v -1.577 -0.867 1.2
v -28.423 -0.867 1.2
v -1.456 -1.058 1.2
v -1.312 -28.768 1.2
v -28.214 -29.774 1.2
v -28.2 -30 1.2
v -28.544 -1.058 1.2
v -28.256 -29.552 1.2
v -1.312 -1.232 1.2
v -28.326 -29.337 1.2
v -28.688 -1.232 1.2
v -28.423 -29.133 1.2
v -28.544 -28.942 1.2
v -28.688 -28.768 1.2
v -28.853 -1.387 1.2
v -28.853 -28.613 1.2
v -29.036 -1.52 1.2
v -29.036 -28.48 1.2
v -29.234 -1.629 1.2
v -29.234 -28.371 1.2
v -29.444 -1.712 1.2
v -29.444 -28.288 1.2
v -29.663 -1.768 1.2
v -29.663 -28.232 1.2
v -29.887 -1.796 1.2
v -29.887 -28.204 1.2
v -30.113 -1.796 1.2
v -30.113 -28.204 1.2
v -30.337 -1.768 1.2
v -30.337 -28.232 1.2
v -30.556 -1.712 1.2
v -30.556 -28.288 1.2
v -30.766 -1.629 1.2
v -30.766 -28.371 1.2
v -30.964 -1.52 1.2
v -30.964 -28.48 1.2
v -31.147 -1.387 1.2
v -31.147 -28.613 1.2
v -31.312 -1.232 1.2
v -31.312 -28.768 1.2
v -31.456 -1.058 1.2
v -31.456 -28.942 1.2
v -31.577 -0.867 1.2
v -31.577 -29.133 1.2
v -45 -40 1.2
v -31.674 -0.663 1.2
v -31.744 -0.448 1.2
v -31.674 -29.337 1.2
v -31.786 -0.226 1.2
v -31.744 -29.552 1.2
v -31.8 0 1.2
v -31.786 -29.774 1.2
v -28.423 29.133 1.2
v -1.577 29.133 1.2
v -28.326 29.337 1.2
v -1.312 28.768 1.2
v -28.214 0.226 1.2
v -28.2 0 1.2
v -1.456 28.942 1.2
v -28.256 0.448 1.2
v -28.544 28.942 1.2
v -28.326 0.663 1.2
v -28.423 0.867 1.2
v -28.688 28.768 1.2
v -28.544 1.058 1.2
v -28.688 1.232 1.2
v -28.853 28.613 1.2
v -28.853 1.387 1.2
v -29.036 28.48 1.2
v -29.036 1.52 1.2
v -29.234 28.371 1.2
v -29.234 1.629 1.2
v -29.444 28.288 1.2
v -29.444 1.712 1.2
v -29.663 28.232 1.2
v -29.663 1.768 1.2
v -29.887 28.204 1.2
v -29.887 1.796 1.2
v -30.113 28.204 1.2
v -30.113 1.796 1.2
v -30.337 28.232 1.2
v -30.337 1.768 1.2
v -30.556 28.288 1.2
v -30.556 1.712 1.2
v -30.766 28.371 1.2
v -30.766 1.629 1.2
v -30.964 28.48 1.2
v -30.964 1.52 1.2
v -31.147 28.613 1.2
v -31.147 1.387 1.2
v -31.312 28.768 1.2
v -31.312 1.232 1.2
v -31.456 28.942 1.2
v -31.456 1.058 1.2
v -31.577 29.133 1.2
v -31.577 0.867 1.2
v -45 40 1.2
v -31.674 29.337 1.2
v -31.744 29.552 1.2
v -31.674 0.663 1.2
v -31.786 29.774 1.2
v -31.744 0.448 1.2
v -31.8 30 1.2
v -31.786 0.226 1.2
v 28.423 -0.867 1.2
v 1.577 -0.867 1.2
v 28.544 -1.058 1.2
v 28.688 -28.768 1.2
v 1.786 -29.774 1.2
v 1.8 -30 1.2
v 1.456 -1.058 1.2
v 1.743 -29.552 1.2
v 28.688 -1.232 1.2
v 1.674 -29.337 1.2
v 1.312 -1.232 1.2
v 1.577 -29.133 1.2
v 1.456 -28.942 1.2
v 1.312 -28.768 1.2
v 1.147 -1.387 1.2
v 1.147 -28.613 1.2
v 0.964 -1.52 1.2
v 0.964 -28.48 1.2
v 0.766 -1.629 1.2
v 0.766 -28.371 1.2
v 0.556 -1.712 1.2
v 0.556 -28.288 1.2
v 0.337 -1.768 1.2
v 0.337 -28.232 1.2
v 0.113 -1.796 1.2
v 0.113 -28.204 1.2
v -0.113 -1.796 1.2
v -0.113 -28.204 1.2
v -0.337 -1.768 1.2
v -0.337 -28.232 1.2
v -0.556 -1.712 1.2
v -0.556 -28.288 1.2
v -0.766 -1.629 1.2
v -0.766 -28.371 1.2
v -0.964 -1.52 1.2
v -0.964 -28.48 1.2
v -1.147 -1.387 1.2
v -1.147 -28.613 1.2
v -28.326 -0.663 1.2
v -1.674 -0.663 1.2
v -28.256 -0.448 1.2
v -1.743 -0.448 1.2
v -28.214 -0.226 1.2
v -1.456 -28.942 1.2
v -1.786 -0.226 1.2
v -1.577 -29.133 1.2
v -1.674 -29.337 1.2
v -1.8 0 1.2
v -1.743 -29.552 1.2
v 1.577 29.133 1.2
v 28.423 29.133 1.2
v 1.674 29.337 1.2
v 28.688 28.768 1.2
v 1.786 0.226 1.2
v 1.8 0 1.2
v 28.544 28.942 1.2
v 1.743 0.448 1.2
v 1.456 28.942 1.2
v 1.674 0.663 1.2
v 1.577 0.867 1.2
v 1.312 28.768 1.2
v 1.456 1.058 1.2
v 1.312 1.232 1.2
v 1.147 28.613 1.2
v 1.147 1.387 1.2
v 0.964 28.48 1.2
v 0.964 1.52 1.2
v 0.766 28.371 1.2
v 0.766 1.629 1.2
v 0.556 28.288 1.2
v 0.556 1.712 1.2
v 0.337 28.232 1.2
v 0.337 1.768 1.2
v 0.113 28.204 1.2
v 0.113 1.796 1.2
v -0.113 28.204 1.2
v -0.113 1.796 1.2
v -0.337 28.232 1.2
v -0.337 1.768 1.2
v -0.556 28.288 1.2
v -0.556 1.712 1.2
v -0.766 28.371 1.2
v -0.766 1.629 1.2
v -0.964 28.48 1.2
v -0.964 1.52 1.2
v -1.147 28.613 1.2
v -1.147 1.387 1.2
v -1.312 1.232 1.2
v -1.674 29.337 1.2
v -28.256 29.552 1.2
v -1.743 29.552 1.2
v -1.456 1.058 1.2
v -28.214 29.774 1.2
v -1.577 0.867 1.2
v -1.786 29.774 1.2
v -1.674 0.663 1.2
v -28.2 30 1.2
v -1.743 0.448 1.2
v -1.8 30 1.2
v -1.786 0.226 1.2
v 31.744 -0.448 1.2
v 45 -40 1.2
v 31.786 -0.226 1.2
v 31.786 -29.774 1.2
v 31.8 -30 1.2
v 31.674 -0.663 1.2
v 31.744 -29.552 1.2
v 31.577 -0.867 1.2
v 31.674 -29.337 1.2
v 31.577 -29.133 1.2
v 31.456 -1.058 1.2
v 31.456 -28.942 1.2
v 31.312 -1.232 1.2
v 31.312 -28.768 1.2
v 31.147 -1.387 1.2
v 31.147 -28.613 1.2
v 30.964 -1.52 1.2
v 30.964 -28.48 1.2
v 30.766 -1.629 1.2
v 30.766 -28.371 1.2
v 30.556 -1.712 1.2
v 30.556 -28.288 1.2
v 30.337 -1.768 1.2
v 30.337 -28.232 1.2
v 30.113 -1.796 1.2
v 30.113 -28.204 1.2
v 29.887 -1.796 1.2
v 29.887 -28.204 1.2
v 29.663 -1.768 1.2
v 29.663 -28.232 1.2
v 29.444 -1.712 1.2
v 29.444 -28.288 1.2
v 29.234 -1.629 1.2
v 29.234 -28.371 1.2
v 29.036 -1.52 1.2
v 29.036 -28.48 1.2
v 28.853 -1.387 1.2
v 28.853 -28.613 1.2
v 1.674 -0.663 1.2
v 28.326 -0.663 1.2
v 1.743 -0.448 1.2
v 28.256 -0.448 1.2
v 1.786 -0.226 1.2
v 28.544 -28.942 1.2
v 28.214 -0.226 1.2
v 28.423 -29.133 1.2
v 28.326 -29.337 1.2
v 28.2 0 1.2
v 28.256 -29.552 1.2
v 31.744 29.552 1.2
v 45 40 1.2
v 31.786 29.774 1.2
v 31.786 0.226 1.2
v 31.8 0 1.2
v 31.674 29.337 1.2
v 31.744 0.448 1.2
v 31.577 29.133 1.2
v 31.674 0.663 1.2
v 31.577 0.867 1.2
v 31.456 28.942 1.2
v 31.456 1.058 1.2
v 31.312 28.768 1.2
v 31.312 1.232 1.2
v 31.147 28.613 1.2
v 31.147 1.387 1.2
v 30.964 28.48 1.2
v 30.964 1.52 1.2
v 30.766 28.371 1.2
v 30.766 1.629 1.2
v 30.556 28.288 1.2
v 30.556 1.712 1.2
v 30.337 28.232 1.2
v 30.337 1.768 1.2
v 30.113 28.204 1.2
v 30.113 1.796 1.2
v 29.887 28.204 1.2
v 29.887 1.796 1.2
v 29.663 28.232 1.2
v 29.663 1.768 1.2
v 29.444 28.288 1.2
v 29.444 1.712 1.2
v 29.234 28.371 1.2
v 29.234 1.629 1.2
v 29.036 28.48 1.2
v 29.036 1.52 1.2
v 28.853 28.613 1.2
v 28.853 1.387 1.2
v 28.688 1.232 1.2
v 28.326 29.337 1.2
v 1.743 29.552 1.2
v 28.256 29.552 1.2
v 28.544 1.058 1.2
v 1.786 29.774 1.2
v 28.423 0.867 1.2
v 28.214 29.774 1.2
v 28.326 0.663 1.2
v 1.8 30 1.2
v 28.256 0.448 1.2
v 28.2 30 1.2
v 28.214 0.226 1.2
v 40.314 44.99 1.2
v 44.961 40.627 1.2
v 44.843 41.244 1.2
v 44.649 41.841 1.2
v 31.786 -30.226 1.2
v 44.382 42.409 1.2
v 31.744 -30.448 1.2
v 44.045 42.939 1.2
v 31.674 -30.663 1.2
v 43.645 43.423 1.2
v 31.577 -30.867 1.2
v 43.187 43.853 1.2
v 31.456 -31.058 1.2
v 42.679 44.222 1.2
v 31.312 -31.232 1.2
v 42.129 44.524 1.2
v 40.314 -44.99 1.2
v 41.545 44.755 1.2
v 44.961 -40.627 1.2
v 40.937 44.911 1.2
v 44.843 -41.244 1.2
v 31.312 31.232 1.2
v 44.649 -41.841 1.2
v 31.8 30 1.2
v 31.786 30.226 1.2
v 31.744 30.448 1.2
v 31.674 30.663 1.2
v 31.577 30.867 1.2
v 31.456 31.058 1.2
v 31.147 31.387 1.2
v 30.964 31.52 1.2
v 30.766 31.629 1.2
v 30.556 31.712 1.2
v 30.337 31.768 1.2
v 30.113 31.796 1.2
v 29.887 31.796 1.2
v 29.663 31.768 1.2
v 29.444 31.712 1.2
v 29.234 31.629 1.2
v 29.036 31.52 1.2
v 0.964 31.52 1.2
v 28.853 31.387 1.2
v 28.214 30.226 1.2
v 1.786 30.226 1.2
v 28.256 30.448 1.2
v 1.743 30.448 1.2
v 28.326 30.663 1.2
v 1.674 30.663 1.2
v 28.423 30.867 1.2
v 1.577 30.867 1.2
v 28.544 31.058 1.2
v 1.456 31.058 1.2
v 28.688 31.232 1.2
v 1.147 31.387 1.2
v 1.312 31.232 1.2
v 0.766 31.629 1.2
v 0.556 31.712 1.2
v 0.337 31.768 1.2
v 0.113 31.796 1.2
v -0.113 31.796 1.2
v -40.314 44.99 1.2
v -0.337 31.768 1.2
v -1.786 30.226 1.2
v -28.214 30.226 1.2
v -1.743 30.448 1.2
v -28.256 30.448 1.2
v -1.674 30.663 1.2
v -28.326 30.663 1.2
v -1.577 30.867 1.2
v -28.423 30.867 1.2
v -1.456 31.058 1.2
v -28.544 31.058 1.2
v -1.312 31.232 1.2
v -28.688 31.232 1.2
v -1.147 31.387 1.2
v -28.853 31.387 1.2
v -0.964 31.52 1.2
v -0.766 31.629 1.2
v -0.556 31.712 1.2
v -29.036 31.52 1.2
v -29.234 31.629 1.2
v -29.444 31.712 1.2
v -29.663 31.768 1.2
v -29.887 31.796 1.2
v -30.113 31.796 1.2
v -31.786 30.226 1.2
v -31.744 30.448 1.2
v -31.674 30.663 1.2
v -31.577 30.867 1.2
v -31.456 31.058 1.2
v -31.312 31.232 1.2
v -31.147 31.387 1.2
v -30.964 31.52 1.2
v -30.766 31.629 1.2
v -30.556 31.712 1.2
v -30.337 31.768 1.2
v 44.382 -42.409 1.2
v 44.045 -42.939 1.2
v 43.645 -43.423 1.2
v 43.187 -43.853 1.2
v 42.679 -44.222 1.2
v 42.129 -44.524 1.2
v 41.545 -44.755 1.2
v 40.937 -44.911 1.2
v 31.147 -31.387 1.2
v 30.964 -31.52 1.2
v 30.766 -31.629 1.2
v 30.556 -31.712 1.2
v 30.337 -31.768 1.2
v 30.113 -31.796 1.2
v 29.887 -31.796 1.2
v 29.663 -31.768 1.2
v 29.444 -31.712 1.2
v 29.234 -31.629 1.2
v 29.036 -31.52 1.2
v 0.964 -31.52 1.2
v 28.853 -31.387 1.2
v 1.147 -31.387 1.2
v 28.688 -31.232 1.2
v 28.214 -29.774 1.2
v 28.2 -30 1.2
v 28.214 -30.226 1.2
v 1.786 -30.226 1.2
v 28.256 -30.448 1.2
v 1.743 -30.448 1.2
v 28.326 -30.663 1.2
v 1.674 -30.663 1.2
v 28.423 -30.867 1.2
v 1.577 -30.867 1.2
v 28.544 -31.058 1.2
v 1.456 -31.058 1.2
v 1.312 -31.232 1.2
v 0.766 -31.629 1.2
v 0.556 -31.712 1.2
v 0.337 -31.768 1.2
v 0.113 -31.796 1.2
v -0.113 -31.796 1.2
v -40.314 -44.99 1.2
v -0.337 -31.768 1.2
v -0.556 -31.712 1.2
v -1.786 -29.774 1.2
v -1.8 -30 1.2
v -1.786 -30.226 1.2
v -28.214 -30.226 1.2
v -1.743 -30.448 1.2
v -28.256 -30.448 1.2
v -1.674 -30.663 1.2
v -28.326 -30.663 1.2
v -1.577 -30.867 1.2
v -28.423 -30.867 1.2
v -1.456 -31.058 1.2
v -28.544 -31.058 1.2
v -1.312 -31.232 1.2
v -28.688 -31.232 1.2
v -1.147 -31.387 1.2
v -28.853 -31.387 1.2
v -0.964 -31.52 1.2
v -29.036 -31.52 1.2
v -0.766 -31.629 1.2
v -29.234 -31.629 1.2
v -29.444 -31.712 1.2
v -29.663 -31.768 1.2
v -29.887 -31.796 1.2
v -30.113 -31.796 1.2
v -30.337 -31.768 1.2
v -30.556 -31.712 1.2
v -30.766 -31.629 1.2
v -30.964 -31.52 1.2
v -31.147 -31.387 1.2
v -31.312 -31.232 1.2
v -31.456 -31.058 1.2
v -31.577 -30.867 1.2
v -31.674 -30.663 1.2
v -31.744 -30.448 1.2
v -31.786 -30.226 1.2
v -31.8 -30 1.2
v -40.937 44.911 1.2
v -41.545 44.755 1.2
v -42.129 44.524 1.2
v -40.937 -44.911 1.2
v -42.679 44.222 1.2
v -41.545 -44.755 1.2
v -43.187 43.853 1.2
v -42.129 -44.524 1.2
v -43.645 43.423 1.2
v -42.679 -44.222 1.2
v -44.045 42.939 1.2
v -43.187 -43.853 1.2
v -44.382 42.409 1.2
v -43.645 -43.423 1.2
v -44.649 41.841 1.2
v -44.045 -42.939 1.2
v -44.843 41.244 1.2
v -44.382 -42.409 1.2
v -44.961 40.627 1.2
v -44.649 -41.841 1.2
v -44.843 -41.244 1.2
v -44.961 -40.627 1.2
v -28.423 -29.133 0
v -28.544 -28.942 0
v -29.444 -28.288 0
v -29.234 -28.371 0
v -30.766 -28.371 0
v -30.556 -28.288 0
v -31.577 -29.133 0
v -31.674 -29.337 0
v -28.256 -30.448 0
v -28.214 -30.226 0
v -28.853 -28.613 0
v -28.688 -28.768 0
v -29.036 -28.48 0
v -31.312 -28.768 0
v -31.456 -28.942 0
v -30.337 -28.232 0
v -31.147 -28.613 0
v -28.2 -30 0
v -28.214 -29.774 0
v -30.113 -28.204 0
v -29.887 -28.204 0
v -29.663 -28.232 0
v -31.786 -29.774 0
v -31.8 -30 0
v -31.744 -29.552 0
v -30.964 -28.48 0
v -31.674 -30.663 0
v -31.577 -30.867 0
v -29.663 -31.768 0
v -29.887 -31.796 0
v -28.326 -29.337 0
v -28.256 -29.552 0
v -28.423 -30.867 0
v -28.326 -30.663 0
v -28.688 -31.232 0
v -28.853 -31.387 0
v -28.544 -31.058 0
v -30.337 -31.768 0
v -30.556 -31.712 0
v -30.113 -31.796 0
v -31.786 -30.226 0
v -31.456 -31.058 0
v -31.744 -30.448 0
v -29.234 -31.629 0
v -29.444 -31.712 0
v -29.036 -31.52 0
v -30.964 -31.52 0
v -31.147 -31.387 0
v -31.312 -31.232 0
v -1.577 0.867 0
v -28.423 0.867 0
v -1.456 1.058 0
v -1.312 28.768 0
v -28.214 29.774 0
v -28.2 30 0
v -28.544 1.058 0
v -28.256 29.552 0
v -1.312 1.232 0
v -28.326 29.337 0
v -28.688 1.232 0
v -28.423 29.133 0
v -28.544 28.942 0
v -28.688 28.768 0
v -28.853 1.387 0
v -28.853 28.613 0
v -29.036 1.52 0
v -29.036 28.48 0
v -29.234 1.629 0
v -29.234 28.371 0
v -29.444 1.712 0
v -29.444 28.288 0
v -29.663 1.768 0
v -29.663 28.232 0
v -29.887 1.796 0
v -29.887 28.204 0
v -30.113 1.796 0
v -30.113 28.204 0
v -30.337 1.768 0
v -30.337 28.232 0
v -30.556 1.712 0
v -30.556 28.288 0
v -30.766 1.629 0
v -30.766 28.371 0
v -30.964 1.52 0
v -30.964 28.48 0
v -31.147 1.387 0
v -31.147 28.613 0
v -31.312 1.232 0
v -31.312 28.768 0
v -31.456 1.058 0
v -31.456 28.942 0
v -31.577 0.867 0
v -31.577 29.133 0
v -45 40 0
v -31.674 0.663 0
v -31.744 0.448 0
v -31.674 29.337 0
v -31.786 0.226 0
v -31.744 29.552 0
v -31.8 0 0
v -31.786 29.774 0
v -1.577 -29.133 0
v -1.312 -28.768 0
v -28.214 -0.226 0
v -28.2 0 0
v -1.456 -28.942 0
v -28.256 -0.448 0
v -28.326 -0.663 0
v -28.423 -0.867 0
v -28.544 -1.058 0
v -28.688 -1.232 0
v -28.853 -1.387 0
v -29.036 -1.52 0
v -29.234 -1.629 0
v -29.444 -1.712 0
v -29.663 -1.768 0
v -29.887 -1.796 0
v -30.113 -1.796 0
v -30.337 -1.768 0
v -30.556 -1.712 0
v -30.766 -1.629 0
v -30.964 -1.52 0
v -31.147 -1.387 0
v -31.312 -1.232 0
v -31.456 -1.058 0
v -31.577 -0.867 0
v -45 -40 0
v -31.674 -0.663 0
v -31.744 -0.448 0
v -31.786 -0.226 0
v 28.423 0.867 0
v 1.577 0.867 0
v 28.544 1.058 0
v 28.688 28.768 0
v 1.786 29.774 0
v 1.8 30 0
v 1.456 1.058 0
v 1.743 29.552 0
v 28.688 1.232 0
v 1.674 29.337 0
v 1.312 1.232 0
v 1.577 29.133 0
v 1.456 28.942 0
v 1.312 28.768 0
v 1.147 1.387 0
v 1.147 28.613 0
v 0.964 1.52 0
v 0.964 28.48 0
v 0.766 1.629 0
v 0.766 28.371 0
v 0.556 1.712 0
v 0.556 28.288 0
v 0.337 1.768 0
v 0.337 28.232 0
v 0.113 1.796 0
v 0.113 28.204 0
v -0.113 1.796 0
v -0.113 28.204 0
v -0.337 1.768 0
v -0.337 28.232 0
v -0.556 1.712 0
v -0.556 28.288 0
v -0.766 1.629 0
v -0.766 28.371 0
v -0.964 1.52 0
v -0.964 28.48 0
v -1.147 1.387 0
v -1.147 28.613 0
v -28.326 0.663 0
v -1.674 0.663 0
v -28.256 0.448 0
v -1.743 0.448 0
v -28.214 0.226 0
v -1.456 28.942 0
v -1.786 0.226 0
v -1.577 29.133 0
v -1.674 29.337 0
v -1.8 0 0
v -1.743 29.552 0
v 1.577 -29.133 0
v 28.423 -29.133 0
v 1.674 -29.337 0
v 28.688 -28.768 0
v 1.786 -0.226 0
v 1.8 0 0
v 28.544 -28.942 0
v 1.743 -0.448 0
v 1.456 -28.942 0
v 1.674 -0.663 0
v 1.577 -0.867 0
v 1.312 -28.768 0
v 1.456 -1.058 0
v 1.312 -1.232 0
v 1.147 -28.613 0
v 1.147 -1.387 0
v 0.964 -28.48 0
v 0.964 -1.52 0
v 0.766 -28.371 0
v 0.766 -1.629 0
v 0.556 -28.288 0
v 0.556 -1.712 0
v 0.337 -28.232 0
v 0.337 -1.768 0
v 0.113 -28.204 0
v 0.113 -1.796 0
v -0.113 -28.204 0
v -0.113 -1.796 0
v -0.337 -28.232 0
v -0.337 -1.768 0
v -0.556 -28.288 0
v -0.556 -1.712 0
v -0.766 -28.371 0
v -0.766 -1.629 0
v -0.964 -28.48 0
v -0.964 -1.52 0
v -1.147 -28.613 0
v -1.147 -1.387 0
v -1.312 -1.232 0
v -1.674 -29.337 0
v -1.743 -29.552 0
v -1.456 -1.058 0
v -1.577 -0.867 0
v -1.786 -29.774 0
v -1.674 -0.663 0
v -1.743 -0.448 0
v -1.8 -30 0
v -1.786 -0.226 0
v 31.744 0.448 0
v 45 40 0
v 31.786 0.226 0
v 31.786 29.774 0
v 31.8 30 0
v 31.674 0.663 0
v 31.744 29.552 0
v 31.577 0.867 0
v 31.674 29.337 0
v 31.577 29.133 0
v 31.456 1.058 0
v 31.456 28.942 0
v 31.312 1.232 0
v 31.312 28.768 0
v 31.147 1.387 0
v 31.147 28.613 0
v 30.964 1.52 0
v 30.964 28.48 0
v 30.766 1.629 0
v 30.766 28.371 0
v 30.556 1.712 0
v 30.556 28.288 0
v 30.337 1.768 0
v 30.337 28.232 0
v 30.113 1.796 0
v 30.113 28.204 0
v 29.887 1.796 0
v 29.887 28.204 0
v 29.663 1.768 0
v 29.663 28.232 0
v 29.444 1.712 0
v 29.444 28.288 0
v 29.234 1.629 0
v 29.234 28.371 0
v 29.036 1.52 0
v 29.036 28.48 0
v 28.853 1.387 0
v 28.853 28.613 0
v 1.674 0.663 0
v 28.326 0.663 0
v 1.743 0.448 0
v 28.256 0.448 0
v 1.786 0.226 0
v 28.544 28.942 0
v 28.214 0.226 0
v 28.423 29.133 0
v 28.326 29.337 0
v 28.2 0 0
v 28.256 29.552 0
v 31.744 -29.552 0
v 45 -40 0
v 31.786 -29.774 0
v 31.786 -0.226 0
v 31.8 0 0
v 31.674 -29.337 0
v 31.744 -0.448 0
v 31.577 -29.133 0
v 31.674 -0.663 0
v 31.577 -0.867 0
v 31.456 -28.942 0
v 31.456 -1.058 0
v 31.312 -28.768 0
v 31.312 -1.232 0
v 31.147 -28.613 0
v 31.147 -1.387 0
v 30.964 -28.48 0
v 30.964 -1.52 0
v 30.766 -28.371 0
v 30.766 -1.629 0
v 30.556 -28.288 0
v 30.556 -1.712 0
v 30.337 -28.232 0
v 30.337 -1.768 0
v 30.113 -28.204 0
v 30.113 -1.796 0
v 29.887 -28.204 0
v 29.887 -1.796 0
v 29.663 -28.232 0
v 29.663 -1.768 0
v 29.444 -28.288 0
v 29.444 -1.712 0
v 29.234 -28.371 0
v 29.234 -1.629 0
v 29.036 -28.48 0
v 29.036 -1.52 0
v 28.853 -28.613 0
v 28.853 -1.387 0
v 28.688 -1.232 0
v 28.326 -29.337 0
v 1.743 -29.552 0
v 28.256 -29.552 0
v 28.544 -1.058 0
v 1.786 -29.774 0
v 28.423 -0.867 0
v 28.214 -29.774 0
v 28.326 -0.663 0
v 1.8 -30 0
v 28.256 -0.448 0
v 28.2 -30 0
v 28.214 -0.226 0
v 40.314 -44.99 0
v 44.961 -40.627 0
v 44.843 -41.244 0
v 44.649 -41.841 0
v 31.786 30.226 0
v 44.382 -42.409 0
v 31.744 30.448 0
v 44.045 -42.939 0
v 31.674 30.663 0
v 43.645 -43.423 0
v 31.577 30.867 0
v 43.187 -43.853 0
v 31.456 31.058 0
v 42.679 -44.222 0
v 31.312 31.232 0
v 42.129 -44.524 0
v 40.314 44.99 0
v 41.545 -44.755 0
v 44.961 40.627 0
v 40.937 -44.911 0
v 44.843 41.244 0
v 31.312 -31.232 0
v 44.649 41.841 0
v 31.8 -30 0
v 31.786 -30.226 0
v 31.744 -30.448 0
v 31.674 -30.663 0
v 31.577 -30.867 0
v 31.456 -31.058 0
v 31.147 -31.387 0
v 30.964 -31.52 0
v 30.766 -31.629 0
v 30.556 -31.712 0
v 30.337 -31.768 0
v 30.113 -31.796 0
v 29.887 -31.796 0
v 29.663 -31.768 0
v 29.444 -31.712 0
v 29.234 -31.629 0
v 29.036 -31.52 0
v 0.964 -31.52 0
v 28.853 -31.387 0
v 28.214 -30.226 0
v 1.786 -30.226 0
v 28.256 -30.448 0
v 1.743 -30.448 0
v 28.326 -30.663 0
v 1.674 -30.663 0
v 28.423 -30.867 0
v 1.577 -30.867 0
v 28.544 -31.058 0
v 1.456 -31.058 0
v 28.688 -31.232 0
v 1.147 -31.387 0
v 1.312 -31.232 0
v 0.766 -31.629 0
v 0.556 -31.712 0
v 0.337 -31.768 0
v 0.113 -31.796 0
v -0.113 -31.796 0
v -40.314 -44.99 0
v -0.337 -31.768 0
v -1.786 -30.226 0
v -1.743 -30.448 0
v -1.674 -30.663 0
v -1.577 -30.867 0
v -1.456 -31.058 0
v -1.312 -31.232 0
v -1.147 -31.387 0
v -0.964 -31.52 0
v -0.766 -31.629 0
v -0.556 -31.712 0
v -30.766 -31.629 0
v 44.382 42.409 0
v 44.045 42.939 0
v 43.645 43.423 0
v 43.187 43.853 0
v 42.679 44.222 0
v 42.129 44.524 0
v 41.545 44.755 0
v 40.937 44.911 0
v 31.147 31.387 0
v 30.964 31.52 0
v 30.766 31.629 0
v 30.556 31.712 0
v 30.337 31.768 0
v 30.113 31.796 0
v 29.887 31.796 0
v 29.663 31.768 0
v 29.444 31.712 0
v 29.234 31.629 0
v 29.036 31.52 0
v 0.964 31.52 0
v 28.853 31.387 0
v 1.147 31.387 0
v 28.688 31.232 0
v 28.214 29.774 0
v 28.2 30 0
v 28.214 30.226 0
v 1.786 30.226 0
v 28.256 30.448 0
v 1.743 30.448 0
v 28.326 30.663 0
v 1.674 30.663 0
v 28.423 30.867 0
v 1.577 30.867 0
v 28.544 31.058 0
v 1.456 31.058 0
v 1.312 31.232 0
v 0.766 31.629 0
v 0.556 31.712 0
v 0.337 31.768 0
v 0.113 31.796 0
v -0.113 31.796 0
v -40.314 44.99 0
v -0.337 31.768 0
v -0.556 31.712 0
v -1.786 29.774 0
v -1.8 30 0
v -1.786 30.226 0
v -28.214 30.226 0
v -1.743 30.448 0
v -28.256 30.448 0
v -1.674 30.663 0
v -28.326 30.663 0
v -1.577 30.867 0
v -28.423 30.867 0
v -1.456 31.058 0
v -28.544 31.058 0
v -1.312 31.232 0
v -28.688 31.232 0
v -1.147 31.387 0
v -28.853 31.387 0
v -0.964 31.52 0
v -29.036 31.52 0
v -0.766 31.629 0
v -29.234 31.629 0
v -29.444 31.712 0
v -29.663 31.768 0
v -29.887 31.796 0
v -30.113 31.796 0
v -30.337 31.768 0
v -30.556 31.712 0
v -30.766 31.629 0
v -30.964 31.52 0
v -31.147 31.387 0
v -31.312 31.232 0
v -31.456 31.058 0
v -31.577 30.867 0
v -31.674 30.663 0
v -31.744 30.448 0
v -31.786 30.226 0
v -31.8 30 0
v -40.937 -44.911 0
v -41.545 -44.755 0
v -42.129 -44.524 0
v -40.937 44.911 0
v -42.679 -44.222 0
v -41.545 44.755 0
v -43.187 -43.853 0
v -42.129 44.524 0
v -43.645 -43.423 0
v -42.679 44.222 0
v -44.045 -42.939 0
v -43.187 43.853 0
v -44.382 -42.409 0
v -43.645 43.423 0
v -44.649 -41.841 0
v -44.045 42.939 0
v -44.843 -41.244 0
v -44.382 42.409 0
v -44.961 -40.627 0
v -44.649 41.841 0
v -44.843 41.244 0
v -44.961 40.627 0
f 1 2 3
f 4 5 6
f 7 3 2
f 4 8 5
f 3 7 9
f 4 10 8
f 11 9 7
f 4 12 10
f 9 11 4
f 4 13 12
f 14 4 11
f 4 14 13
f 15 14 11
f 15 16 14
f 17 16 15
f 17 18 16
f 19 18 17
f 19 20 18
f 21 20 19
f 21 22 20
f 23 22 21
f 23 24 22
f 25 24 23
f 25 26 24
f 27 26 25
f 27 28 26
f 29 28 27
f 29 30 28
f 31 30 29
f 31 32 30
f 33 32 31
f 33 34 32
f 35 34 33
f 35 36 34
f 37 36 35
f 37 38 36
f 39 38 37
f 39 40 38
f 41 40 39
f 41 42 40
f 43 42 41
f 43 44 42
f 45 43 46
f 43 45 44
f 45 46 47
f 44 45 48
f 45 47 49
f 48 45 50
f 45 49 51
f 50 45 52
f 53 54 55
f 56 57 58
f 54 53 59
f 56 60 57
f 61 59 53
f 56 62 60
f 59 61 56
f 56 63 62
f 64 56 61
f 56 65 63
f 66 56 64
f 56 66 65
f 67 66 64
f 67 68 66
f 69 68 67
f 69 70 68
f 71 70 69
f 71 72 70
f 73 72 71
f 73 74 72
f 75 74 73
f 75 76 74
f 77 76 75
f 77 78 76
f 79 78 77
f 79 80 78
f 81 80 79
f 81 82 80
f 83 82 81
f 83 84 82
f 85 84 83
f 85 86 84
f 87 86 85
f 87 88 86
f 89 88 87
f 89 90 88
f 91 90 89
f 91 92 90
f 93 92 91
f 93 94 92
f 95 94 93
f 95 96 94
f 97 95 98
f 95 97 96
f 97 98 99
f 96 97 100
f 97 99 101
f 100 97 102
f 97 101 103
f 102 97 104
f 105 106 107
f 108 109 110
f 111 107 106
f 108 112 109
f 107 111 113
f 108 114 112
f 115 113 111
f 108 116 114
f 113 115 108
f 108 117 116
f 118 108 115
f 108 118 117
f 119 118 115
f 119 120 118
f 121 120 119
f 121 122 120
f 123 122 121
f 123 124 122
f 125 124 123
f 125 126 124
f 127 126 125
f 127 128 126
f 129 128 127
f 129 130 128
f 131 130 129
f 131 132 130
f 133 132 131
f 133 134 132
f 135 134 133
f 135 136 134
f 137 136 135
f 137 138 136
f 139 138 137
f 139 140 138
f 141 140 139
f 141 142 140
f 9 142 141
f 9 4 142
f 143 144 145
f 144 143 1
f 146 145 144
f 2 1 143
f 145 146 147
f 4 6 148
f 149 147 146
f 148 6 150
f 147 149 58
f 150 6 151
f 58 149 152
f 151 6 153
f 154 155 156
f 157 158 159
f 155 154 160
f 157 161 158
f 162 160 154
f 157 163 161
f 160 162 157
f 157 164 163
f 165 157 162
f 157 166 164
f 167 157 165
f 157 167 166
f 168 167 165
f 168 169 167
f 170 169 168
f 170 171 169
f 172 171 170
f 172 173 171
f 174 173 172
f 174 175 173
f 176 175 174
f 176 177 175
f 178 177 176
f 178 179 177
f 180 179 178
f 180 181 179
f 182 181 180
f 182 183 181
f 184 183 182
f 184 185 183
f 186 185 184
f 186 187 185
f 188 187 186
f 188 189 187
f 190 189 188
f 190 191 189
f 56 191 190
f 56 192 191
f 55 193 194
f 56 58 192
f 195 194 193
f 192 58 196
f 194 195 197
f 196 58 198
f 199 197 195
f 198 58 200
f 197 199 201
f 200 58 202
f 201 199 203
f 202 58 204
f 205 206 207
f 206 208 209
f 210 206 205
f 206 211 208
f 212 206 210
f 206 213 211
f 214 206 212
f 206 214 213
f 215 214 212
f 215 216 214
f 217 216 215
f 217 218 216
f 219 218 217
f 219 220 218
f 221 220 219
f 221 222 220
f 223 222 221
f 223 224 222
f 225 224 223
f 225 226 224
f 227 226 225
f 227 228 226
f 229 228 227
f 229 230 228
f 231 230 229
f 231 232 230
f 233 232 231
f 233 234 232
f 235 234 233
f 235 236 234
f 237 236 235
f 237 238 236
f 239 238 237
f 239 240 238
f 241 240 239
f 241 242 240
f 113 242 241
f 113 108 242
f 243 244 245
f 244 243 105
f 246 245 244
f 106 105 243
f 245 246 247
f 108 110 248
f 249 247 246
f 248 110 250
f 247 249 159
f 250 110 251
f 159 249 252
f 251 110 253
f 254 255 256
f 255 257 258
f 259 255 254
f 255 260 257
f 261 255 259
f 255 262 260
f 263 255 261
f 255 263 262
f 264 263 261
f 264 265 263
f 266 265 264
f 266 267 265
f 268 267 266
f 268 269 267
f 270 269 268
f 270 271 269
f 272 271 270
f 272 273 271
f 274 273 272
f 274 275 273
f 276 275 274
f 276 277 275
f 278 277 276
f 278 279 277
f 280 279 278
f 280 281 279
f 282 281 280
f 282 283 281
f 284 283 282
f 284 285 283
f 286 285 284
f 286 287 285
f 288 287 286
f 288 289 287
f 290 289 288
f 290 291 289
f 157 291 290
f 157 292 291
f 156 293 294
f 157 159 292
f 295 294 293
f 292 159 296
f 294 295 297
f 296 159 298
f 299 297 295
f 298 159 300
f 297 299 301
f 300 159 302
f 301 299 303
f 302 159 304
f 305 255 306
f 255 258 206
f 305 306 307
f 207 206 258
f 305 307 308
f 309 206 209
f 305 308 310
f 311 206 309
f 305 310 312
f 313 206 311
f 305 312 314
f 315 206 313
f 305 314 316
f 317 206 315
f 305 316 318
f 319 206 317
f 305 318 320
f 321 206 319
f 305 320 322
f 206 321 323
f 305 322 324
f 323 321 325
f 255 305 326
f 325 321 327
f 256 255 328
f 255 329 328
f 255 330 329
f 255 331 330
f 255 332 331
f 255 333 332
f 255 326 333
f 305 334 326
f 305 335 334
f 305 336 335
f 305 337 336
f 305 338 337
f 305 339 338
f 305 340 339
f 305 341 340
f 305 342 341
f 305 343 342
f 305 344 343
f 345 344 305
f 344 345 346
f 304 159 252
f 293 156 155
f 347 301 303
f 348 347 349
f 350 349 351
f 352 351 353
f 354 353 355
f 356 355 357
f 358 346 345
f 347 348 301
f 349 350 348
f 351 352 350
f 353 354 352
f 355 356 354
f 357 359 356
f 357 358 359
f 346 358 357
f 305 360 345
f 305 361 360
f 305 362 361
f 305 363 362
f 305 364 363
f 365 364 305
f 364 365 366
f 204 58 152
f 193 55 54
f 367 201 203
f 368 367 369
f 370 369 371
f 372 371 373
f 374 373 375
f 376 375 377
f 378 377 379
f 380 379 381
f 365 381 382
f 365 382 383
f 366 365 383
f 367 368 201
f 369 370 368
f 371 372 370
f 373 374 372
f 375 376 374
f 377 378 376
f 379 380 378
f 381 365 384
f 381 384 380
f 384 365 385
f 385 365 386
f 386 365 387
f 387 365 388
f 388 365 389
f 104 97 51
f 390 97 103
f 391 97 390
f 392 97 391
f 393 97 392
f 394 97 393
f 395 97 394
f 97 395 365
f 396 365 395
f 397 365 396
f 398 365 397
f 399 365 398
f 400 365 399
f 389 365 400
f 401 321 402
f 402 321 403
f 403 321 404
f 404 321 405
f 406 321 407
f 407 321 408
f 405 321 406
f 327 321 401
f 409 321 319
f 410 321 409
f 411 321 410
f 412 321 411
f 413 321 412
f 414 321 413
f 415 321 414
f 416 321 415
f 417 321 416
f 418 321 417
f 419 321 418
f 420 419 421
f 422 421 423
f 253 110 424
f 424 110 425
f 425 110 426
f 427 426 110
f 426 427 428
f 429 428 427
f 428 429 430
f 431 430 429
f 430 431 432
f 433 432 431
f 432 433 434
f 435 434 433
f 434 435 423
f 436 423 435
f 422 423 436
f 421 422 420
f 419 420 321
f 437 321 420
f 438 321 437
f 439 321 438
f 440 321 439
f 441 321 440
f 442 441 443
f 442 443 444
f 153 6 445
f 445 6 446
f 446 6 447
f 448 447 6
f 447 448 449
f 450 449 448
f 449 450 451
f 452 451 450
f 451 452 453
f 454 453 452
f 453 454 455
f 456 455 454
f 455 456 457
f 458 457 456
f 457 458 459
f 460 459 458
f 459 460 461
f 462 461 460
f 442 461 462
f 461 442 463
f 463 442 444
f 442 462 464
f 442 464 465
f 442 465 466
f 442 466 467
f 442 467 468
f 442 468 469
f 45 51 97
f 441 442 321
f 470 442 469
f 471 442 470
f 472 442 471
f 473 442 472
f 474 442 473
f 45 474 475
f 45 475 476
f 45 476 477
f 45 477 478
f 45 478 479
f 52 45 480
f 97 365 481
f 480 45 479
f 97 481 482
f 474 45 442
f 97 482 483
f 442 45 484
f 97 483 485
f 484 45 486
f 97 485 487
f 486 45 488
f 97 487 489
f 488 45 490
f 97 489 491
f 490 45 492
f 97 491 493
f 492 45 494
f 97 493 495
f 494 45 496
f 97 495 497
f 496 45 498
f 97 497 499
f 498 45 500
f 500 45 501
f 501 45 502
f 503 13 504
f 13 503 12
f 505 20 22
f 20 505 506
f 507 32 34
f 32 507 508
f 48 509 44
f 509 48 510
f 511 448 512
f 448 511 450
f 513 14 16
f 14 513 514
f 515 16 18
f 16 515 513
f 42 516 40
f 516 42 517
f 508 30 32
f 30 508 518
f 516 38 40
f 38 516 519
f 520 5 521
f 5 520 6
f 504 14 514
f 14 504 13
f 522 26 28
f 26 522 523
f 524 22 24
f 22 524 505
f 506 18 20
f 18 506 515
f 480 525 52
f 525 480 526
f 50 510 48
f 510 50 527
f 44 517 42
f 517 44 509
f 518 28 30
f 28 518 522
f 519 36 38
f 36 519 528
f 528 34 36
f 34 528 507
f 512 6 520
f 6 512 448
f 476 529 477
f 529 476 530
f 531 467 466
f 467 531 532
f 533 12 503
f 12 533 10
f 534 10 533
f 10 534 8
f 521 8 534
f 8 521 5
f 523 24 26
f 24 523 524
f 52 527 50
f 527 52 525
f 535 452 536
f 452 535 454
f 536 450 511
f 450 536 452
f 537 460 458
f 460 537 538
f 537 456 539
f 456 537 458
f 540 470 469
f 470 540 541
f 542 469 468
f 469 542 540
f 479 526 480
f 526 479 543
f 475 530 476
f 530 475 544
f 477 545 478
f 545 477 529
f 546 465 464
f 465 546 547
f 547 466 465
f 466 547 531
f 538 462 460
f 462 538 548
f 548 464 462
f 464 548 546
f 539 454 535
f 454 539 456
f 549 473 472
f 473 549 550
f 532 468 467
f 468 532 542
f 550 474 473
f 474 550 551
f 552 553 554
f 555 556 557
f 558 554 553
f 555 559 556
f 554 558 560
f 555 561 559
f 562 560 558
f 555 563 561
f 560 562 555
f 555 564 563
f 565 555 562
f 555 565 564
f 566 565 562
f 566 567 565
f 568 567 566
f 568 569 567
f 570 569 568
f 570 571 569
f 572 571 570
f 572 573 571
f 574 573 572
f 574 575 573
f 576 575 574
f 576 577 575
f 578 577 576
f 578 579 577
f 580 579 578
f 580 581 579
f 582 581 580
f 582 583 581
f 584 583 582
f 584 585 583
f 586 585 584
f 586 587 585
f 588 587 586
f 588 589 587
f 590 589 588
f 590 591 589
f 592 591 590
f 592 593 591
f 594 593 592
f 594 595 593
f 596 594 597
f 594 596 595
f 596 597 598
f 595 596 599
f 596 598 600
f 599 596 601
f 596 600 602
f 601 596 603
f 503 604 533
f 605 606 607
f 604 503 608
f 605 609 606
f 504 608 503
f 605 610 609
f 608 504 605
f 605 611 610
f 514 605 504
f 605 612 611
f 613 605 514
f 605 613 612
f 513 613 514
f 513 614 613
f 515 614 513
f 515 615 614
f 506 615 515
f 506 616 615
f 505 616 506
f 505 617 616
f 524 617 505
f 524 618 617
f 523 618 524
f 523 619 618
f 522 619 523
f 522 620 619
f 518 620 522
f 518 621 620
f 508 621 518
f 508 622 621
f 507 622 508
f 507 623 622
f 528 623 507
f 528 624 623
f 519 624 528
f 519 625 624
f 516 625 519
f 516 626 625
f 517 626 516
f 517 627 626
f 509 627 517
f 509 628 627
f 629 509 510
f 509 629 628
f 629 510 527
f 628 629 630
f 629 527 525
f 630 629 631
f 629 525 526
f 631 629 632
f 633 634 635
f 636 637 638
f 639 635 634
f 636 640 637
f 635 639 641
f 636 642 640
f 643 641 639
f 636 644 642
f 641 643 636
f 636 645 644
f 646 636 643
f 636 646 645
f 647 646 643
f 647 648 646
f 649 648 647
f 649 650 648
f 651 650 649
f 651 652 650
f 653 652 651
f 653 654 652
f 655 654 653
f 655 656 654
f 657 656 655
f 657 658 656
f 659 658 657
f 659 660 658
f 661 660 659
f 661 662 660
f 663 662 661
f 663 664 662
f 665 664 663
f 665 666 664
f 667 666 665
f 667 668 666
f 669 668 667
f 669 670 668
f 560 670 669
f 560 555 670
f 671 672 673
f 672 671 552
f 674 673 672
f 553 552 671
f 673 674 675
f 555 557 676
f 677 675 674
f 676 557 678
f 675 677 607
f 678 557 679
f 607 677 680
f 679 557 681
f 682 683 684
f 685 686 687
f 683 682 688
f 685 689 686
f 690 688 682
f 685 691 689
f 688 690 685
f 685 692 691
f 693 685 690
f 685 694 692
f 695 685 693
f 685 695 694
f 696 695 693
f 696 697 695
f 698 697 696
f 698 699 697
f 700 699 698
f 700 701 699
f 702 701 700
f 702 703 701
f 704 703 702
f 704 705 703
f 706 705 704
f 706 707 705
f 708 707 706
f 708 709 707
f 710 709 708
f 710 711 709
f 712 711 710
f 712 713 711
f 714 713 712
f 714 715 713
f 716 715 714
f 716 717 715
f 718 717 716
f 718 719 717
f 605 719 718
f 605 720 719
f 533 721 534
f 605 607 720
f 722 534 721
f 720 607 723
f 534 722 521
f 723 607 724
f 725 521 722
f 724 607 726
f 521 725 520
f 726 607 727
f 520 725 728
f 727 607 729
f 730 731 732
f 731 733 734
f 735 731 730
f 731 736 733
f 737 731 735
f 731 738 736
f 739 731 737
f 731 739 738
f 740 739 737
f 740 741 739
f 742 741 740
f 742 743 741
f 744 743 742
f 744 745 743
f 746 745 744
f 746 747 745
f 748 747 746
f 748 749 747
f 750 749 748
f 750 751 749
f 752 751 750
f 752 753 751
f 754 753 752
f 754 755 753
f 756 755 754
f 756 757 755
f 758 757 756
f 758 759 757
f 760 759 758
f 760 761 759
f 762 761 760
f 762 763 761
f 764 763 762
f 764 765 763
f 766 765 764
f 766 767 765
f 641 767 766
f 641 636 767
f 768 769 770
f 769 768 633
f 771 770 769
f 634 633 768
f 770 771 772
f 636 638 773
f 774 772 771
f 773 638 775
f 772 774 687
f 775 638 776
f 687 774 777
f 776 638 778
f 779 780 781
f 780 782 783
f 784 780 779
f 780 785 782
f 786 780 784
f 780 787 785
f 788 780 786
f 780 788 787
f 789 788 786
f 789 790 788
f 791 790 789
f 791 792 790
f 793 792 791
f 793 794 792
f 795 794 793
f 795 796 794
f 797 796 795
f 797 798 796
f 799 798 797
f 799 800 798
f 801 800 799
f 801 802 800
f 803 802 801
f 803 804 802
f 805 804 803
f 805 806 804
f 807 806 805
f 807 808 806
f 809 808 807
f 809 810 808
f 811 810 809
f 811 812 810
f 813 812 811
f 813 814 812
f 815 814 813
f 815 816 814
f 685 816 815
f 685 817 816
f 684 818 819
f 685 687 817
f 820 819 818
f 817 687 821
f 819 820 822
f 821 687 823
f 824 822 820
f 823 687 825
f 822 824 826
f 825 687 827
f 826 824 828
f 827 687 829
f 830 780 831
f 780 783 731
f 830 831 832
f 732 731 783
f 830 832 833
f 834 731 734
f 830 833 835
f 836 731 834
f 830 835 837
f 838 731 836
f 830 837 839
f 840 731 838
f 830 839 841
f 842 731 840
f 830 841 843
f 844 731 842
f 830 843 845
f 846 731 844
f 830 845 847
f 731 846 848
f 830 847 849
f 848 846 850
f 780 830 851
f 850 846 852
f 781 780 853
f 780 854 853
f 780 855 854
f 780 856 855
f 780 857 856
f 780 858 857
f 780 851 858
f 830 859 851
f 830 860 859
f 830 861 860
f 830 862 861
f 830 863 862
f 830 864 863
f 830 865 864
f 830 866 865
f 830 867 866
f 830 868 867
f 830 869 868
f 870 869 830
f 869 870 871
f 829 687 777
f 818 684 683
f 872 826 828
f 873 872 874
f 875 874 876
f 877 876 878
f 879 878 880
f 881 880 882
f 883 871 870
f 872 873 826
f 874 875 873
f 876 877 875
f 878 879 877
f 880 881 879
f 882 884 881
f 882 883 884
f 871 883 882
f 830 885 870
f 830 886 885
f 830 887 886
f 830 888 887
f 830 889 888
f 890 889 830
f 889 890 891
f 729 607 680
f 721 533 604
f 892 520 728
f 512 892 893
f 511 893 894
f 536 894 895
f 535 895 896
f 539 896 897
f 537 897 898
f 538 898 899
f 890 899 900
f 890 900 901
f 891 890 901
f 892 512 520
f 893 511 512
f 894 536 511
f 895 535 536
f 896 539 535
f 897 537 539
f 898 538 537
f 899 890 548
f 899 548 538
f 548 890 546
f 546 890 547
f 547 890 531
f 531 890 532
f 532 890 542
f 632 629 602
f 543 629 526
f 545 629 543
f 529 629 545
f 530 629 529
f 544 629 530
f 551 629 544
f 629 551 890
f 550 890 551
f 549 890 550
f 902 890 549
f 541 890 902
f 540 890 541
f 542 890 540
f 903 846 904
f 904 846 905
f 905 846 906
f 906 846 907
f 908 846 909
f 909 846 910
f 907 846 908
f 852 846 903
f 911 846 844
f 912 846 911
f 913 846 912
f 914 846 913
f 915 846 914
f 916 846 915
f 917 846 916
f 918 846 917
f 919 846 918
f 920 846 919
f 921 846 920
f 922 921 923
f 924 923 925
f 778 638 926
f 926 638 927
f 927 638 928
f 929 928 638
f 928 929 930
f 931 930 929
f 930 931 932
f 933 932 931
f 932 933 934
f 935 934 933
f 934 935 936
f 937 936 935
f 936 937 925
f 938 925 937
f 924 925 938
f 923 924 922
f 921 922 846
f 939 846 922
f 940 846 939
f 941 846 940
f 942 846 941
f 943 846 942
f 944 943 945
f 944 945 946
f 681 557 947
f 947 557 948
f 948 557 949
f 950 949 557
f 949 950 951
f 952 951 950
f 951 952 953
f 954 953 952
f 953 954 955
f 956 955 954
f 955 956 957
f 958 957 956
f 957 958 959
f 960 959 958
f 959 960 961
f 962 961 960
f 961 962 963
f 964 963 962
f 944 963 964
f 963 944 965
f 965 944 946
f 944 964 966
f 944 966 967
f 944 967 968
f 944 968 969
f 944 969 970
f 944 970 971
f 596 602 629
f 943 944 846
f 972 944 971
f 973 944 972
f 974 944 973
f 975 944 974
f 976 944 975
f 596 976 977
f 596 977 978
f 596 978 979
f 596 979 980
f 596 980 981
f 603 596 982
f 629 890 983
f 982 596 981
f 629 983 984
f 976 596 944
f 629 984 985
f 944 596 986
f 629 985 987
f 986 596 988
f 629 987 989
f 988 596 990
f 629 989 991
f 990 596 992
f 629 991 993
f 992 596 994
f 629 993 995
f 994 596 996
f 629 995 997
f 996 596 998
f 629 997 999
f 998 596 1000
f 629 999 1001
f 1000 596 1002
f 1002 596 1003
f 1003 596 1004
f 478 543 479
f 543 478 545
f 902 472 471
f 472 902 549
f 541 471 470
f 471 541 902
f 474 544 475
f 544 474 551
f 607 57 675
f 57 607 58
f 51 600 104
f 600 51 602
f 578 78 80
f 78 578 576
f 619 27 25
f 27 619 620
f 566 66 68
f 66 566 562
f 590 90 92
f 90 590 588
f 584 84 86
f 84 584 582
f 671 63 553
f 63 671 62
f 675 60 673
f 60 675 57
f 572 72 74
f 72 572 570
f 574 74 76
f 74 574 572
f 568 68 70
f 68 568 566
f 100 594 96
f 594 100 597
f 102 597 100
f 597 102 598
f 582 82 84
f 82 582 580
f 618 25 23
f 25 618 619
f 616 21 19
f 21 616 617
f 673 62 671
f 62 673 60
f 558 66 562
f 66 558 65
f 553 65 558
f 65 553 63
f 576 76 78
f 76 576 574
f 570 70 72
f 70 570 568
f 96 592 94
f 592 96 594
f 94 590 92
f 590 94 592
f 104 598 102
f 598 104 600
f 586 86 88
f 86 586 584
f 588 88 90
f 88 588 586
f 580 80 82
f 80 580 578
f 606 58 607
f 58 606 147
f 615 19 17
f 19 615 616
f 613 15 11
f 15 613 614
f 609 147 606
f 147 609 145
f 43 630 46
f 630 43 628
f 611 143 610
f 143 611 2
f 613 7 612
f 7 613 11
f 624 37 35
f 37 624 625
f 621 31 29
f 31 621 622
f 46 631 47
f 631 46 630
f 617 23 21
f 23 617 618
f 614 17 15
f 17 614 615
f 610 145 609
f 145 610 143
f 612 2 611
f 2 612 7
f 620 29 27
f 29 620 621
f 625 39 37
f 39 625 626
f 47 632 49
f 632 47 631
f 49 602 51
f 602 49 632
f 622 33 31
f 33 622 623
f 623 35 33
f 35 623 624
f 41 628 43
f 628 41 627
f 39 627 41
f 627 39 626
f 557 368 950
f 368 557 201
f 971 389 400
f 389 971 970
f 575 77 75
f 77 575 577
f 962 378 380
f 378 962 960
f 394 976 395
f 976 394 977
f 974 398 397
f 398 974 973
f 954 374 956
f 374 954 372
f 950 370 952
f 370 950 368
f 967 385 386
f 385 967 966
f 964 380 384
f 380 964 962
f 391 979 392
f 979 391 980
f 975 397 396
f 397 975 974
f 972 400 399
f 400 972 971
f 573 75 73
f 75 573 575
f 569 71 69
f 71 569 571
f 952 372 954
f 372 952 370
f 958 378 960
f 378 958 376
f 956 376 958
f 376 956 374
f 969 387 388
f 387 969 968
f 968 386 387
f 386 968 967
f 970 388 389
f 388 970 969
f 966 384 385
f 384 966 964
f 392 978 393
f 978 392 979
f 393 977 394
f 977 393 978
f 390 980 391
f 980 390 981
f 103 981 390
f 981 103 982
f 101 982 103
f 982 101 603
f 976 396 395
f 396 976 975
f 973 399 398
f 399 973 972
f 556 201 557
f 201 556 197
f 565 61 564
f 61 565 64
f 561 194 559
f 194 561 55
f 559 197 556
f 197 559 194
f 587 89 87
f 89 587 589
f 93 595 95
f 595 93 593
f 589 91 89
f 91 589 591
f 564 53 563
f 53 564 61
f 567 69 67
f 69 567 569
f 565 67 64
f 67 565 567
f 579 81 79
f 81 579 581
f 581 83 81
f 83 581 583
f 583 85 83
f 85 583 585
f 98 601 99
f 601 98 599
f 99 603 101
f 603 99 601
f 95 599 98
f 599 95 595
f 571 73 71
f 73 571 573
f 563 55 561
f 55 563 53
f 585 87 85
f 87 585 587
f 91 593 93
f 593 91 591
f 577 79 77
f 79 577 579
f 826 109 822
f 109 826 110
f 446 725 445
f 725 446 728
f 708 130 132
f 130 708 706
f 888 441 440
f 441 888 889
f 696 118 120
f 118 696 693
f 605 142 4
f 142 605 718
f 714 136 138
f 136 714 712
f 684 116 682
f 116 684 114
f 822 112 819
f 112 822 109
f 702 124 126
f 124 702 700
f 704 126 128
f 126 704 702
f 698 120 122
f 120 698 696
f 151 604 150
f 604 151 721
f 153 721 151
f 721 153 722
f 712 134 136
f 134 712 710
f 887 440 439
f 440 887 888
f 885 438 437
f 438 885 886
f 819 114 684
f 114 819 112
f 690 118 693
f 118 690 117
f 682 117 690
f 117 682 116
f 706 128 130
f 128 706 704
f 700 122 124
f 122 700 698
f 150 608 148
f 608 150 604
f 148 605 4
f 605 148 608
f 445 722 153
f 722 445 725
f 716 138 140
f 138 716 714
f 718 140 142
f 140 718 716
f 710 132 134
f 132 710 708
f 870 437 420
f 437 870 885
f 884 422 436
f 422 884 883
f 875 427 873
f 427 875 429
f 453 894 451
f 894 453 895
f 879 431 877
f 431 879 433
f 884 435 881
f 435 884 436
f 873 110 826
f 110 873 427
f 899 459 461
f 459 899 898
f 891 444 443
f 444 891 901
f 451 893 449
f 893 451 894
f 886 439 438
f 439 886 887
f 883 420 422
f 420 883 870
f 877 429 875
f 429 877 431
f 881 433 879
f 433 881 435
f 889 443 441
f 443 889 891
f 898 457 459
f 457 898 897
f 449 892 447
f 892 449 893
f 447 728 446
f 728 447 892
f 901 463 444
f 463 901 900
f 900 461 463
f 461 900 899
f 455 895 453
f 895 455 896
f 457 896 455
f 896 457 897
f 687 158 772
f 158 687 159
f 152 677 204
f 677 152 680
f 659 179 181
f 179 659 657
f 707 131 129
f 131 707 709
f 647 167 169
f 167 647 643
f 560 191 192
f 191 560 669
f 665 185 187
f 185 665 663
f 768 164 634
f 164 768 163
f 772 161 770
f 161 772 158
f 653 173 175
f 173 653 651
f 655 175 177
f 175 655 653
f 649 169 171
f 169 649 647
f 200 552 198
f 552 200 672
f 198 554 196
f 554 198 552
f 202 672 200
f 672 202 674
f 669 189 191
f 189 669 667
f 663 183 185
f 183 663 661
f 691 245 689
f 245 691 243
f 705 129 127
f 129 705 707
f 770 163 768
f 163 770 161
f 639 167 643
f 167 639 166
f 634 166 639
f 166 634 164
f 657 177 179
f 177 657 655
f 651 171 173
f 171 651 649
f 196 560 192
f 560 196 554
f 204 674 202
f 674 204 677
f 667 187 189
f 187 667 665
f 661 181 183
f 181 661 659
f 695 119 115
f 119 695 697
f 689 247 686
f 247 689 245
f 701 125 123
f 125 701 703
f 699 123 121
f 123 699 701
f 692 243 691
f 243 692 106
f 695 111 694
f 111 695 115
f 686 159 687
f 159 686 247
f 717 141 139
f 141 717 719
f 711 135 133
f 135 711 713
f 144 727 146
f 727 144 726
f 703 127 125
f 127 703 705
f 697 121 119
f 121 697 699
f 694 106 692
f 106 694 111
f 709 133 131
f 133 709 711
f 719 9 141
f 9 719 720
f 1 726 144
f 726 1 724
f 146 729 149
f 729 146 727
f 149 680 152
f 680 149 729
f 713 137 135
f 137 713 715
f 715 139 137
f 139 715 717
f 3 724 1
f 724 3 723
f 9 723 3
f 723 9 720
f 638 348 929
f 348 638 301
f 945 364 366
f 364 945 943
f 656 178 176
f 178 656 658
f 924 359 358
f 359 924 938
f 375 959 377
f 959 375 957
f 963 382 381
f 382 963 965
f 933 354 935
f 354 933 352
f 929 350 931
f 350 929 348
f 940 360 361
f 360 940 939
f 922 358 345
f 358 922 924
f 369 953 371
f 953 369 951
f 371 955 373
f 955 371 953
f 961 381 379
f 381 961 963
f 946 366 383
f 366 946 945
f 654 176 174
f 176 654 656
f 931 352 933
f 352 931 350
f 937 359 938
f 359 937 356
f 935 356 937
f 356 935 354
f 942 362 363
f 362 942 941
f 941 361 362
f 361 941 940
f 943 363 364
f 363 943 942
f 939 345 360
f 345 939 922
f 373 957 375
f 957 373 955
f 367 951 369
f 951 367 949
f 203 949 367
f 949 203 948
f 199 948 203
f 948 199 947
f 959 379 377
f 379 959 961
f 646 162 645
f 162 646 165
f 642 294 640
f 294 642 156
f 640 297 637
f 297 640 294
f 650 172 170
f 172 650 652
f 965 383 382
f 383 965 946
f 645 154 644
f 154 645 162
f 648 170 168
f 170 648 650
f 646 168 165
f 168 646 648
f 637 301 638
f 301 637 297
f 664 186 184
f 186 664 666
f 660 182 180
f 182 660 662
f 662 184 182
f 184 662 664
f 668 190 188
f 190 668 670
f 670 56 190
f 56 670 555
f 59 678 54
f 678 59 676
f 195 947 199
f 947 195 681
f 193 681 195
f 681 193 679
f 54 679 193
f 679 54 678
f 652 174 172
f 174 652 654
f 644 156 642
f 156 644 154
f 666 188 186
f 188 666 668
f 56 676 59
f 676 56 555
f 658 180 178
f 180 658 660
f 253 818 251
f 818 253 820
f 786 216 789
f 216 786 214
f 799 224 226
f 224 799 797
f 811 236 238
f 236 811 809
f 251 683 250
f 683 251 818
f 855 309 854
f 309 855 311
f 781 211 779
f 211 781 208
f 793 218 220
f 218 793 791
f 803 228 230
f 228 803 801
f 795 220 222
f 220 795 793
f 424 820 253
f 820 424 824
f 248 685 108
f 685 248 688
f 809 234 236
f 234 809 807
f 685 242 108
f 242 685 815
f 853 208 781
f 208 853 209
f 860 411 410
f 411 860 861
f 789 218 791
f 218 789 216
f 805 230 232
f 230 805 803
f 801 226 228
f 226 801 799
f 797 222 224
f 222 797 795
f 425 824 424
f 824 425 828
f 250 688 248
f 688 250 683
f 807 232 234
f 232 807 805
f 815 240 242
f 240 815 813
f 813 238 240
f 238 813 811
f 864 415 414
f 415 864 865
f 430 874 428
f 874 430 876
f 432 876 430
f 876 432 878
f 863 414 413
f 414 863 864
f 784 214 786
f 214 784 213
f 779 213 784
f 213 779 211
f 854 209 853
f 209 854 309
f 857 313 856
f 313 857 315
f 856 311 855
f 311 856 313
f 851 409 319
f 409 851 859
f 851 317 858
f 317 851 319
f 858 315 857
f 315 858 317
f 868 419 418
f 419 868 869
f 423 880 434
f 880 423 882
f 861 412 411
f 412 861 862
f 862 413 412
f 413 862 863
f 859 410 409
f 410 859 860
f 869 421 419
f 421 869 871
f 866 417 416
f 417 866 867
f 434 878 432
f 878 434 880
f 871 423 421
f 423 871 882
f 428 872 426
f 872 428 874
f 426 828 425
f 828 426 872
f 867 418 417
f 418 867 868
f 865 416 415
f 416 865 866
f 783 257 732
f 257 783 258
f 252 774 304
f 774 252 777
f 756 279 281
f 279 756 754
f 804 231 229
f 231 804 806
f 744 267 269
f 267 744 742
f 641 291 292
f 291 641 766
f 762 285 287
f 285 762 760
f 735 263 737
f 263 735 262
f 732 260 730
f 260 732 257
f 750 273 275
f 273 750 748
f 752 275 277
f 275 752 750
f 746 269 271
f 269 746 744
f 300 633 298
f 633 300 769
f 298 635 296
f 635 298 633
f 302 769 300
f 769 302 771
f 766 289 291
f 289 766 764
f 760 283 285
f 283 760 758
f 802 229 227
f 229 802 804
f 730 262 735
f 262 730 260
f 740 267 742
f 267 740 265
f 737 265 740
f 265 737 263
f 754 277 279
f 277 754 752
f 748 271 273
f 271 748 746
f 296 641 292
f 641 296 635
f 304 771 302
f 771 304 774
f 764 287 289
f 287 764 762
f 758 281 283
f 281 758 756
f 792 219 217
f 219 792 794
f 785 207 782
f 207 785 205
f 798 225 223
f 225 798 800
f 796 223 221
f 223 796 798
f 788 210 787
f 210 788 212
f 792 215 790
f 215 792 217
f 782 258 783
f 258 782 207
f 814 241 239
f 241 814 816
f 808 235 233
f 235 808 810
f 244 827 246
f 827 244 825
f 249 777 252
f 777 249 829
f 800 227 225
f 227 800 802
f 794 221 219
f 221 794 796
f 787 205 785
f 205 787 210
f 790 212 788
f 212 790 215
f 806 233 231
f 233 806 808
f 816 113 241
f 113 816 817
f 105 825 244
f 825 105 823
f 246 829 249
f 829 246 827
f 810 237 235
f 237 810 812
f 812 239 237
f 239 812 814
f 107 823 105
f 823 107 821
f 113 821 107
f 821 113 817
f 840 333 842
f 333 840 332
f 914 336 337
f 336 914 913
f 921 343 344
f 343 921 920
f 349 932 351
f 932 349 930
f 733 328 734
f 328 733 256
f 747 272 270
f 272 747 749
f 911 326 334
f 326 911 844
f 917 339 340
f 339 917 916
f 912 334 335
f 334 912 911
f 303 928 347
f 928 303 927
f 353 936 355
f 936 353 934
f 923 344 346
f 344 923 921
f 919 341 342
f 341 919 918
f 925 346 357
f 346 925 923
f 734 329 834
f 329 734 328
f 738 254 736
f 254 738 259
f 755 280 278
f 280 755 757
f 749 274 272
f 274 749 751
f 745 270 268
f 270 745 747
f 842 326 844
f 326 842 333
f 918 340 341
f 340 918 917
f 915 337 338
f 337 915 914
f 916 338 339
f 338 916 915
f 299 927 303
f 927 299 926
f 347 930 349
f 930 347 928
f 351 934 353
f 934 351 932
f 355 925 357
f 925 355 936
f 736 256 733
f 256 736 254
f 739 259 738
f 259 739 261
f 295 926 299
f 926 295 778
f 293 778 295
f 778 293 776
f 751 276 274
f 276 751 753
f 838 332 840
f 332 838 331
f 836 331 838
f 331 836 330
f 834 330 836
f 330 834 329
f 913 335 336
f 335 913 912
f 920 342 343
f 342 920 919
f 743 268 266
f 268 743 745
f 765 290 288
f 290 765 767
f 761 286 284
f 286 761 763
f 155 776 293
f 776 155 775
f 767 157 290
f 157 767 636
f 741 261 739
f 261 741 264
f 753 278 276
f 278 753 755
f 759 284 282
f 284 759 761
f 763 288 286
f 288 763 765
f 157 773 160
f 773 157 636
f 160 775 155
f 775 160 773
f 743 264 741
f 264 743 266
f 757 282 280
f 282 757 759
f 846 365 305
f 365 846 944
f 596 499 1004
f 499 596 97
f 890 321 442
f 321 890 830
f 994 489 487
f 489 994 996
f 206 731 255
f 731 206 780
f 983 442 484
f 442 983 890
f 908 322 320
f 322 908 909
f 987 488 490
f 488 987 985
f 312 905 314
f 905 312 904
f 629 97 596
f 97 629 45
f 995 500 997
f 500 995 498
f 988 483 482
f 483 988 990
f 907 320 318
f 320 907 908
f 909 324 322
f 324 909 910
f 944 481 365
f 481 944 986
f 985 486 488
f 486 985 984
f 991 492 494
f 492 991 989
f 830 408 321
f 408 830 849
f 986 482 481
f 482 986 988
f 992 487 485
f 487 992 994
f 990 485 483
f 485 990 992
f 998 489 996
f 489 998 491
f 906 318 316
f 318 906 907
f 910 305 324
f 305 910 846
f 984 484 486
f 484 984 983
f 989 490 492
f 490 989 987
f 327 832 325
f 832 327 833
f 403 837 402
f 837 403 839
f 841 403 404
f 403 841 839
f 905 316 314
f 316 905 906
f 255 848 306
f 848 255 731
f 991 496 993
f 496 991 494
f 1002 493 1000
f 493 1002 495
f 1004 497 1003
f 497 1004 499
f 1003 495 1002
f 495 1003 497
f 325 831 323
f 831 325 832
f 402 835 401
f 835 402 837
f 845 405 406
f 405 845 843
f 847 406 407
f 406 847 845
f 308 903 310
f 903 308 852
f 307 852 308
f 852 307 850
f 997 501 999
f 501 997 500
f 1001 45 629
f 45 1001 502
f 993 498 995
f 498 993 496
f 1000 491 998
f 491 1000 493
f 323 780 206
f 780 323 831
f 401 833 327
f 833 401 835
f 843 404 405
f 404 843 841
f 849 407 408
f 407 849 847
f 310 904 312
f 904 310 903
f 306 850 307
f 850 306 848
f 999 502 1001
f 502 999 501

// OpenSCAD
$fn = 50;


difference() {
	union() {
		hull() {
			translate(v = [-40.0000000000, 40.0000000000, 0]) {
				cylinder(h = 27, r = 5);
			}
			translate(v = [40.0000000000, 40.0000000000, 0]) {
				cylinder(h = 27, r = 5);
			}
			translate(v = [-40.0000000000, -40.0000000000, 0]) {
				cylinder(h = 27, r = 5);
			}
			translate(v = [40.0000000000, -40.0000000000, 0]) {
				cylinder(h = 27, r = 5);
			}
		}
	}
	union() {
		translate(v = [0, 0, 1.2000000000]) {
			hull() {
				translate(v = [-40.0000000000, 40.0000000000, 0]) {
					cylinder(h = 25.8000000000, r = 3.8000000000);
				}
				translate(v = [40.0000000000, 40.0000000000, 0]) {
					cylinder(h = 25.8000000000, r = 3.8000000000);
				}
				translate(v = [-40.0000000000, -40.0000000000, 0]) {
					cylinder(h = 25.8000000000, r = 3.8000000000);
				}
				translate(v = [40.0000000000, -40.0000000000, 0]) {
					cylinder(h = 25.8000000000, r = 3.8000000000);
				}
			}
		}
		#translate(v = [-30.0000000000, -30.0000000000, 0]) {
			cylinder(h = 1.2000000000, r = 1.8000000000);
		}
		#translate(v = [-30.0000000000, 0.0000000000, 0]) {
			cylinder(h = 1.2000000000, r = 1.8000000000);
		}
		#translate(v = [-30.0000000000, 30.0000000000, 0]) {
			cylinder(h = 1.2000000000, r = 1.8000000000);
		}
		#translate(v = [0.0000000000, -30.0000000000, 0]) {
			cylinder(h = 1.2000000000, r = 1.8000000000);
		}
		#cylinder(h = 1.2000000000, r = 1.8000000000);
		#translate(v = [0.0000000000, 30.0000000000, 0]) {
			cylinder(h = 1.2000000000, r = 1.8000000000);
		}
		#translate(v = [30.0000000000, -30.0000000000, 0]) {
			cylinder(h = 1.2000000000, r = 1.8000000000);
		}
		#translate(v = [30.0000000000, 0.0000000000, 0]) {
			cylinder(h = 1.2000000000, r = 1.8000000000);
		}
		#translate(v = [30.0000000000, 30.0000000000, 0]) {
			cylinder(h = 1.2000000000, r = 1.8000000000);
		}
		translate(v = [-250.0000000000, -250.0000000000, 1.2000000000]) {
			cube(size = [500, 500, 500]);
		}
		translate(v = [-250.0000000000, -250.0000000000, 1.2000000000]) {
			cube(size = [500, 500, 500]);
		}
		translate(v = [-250.0000000000, -250.0000000000, 1.2000000000]) {
			cube(size = [500, 500, 500]);
		}
	}
}
